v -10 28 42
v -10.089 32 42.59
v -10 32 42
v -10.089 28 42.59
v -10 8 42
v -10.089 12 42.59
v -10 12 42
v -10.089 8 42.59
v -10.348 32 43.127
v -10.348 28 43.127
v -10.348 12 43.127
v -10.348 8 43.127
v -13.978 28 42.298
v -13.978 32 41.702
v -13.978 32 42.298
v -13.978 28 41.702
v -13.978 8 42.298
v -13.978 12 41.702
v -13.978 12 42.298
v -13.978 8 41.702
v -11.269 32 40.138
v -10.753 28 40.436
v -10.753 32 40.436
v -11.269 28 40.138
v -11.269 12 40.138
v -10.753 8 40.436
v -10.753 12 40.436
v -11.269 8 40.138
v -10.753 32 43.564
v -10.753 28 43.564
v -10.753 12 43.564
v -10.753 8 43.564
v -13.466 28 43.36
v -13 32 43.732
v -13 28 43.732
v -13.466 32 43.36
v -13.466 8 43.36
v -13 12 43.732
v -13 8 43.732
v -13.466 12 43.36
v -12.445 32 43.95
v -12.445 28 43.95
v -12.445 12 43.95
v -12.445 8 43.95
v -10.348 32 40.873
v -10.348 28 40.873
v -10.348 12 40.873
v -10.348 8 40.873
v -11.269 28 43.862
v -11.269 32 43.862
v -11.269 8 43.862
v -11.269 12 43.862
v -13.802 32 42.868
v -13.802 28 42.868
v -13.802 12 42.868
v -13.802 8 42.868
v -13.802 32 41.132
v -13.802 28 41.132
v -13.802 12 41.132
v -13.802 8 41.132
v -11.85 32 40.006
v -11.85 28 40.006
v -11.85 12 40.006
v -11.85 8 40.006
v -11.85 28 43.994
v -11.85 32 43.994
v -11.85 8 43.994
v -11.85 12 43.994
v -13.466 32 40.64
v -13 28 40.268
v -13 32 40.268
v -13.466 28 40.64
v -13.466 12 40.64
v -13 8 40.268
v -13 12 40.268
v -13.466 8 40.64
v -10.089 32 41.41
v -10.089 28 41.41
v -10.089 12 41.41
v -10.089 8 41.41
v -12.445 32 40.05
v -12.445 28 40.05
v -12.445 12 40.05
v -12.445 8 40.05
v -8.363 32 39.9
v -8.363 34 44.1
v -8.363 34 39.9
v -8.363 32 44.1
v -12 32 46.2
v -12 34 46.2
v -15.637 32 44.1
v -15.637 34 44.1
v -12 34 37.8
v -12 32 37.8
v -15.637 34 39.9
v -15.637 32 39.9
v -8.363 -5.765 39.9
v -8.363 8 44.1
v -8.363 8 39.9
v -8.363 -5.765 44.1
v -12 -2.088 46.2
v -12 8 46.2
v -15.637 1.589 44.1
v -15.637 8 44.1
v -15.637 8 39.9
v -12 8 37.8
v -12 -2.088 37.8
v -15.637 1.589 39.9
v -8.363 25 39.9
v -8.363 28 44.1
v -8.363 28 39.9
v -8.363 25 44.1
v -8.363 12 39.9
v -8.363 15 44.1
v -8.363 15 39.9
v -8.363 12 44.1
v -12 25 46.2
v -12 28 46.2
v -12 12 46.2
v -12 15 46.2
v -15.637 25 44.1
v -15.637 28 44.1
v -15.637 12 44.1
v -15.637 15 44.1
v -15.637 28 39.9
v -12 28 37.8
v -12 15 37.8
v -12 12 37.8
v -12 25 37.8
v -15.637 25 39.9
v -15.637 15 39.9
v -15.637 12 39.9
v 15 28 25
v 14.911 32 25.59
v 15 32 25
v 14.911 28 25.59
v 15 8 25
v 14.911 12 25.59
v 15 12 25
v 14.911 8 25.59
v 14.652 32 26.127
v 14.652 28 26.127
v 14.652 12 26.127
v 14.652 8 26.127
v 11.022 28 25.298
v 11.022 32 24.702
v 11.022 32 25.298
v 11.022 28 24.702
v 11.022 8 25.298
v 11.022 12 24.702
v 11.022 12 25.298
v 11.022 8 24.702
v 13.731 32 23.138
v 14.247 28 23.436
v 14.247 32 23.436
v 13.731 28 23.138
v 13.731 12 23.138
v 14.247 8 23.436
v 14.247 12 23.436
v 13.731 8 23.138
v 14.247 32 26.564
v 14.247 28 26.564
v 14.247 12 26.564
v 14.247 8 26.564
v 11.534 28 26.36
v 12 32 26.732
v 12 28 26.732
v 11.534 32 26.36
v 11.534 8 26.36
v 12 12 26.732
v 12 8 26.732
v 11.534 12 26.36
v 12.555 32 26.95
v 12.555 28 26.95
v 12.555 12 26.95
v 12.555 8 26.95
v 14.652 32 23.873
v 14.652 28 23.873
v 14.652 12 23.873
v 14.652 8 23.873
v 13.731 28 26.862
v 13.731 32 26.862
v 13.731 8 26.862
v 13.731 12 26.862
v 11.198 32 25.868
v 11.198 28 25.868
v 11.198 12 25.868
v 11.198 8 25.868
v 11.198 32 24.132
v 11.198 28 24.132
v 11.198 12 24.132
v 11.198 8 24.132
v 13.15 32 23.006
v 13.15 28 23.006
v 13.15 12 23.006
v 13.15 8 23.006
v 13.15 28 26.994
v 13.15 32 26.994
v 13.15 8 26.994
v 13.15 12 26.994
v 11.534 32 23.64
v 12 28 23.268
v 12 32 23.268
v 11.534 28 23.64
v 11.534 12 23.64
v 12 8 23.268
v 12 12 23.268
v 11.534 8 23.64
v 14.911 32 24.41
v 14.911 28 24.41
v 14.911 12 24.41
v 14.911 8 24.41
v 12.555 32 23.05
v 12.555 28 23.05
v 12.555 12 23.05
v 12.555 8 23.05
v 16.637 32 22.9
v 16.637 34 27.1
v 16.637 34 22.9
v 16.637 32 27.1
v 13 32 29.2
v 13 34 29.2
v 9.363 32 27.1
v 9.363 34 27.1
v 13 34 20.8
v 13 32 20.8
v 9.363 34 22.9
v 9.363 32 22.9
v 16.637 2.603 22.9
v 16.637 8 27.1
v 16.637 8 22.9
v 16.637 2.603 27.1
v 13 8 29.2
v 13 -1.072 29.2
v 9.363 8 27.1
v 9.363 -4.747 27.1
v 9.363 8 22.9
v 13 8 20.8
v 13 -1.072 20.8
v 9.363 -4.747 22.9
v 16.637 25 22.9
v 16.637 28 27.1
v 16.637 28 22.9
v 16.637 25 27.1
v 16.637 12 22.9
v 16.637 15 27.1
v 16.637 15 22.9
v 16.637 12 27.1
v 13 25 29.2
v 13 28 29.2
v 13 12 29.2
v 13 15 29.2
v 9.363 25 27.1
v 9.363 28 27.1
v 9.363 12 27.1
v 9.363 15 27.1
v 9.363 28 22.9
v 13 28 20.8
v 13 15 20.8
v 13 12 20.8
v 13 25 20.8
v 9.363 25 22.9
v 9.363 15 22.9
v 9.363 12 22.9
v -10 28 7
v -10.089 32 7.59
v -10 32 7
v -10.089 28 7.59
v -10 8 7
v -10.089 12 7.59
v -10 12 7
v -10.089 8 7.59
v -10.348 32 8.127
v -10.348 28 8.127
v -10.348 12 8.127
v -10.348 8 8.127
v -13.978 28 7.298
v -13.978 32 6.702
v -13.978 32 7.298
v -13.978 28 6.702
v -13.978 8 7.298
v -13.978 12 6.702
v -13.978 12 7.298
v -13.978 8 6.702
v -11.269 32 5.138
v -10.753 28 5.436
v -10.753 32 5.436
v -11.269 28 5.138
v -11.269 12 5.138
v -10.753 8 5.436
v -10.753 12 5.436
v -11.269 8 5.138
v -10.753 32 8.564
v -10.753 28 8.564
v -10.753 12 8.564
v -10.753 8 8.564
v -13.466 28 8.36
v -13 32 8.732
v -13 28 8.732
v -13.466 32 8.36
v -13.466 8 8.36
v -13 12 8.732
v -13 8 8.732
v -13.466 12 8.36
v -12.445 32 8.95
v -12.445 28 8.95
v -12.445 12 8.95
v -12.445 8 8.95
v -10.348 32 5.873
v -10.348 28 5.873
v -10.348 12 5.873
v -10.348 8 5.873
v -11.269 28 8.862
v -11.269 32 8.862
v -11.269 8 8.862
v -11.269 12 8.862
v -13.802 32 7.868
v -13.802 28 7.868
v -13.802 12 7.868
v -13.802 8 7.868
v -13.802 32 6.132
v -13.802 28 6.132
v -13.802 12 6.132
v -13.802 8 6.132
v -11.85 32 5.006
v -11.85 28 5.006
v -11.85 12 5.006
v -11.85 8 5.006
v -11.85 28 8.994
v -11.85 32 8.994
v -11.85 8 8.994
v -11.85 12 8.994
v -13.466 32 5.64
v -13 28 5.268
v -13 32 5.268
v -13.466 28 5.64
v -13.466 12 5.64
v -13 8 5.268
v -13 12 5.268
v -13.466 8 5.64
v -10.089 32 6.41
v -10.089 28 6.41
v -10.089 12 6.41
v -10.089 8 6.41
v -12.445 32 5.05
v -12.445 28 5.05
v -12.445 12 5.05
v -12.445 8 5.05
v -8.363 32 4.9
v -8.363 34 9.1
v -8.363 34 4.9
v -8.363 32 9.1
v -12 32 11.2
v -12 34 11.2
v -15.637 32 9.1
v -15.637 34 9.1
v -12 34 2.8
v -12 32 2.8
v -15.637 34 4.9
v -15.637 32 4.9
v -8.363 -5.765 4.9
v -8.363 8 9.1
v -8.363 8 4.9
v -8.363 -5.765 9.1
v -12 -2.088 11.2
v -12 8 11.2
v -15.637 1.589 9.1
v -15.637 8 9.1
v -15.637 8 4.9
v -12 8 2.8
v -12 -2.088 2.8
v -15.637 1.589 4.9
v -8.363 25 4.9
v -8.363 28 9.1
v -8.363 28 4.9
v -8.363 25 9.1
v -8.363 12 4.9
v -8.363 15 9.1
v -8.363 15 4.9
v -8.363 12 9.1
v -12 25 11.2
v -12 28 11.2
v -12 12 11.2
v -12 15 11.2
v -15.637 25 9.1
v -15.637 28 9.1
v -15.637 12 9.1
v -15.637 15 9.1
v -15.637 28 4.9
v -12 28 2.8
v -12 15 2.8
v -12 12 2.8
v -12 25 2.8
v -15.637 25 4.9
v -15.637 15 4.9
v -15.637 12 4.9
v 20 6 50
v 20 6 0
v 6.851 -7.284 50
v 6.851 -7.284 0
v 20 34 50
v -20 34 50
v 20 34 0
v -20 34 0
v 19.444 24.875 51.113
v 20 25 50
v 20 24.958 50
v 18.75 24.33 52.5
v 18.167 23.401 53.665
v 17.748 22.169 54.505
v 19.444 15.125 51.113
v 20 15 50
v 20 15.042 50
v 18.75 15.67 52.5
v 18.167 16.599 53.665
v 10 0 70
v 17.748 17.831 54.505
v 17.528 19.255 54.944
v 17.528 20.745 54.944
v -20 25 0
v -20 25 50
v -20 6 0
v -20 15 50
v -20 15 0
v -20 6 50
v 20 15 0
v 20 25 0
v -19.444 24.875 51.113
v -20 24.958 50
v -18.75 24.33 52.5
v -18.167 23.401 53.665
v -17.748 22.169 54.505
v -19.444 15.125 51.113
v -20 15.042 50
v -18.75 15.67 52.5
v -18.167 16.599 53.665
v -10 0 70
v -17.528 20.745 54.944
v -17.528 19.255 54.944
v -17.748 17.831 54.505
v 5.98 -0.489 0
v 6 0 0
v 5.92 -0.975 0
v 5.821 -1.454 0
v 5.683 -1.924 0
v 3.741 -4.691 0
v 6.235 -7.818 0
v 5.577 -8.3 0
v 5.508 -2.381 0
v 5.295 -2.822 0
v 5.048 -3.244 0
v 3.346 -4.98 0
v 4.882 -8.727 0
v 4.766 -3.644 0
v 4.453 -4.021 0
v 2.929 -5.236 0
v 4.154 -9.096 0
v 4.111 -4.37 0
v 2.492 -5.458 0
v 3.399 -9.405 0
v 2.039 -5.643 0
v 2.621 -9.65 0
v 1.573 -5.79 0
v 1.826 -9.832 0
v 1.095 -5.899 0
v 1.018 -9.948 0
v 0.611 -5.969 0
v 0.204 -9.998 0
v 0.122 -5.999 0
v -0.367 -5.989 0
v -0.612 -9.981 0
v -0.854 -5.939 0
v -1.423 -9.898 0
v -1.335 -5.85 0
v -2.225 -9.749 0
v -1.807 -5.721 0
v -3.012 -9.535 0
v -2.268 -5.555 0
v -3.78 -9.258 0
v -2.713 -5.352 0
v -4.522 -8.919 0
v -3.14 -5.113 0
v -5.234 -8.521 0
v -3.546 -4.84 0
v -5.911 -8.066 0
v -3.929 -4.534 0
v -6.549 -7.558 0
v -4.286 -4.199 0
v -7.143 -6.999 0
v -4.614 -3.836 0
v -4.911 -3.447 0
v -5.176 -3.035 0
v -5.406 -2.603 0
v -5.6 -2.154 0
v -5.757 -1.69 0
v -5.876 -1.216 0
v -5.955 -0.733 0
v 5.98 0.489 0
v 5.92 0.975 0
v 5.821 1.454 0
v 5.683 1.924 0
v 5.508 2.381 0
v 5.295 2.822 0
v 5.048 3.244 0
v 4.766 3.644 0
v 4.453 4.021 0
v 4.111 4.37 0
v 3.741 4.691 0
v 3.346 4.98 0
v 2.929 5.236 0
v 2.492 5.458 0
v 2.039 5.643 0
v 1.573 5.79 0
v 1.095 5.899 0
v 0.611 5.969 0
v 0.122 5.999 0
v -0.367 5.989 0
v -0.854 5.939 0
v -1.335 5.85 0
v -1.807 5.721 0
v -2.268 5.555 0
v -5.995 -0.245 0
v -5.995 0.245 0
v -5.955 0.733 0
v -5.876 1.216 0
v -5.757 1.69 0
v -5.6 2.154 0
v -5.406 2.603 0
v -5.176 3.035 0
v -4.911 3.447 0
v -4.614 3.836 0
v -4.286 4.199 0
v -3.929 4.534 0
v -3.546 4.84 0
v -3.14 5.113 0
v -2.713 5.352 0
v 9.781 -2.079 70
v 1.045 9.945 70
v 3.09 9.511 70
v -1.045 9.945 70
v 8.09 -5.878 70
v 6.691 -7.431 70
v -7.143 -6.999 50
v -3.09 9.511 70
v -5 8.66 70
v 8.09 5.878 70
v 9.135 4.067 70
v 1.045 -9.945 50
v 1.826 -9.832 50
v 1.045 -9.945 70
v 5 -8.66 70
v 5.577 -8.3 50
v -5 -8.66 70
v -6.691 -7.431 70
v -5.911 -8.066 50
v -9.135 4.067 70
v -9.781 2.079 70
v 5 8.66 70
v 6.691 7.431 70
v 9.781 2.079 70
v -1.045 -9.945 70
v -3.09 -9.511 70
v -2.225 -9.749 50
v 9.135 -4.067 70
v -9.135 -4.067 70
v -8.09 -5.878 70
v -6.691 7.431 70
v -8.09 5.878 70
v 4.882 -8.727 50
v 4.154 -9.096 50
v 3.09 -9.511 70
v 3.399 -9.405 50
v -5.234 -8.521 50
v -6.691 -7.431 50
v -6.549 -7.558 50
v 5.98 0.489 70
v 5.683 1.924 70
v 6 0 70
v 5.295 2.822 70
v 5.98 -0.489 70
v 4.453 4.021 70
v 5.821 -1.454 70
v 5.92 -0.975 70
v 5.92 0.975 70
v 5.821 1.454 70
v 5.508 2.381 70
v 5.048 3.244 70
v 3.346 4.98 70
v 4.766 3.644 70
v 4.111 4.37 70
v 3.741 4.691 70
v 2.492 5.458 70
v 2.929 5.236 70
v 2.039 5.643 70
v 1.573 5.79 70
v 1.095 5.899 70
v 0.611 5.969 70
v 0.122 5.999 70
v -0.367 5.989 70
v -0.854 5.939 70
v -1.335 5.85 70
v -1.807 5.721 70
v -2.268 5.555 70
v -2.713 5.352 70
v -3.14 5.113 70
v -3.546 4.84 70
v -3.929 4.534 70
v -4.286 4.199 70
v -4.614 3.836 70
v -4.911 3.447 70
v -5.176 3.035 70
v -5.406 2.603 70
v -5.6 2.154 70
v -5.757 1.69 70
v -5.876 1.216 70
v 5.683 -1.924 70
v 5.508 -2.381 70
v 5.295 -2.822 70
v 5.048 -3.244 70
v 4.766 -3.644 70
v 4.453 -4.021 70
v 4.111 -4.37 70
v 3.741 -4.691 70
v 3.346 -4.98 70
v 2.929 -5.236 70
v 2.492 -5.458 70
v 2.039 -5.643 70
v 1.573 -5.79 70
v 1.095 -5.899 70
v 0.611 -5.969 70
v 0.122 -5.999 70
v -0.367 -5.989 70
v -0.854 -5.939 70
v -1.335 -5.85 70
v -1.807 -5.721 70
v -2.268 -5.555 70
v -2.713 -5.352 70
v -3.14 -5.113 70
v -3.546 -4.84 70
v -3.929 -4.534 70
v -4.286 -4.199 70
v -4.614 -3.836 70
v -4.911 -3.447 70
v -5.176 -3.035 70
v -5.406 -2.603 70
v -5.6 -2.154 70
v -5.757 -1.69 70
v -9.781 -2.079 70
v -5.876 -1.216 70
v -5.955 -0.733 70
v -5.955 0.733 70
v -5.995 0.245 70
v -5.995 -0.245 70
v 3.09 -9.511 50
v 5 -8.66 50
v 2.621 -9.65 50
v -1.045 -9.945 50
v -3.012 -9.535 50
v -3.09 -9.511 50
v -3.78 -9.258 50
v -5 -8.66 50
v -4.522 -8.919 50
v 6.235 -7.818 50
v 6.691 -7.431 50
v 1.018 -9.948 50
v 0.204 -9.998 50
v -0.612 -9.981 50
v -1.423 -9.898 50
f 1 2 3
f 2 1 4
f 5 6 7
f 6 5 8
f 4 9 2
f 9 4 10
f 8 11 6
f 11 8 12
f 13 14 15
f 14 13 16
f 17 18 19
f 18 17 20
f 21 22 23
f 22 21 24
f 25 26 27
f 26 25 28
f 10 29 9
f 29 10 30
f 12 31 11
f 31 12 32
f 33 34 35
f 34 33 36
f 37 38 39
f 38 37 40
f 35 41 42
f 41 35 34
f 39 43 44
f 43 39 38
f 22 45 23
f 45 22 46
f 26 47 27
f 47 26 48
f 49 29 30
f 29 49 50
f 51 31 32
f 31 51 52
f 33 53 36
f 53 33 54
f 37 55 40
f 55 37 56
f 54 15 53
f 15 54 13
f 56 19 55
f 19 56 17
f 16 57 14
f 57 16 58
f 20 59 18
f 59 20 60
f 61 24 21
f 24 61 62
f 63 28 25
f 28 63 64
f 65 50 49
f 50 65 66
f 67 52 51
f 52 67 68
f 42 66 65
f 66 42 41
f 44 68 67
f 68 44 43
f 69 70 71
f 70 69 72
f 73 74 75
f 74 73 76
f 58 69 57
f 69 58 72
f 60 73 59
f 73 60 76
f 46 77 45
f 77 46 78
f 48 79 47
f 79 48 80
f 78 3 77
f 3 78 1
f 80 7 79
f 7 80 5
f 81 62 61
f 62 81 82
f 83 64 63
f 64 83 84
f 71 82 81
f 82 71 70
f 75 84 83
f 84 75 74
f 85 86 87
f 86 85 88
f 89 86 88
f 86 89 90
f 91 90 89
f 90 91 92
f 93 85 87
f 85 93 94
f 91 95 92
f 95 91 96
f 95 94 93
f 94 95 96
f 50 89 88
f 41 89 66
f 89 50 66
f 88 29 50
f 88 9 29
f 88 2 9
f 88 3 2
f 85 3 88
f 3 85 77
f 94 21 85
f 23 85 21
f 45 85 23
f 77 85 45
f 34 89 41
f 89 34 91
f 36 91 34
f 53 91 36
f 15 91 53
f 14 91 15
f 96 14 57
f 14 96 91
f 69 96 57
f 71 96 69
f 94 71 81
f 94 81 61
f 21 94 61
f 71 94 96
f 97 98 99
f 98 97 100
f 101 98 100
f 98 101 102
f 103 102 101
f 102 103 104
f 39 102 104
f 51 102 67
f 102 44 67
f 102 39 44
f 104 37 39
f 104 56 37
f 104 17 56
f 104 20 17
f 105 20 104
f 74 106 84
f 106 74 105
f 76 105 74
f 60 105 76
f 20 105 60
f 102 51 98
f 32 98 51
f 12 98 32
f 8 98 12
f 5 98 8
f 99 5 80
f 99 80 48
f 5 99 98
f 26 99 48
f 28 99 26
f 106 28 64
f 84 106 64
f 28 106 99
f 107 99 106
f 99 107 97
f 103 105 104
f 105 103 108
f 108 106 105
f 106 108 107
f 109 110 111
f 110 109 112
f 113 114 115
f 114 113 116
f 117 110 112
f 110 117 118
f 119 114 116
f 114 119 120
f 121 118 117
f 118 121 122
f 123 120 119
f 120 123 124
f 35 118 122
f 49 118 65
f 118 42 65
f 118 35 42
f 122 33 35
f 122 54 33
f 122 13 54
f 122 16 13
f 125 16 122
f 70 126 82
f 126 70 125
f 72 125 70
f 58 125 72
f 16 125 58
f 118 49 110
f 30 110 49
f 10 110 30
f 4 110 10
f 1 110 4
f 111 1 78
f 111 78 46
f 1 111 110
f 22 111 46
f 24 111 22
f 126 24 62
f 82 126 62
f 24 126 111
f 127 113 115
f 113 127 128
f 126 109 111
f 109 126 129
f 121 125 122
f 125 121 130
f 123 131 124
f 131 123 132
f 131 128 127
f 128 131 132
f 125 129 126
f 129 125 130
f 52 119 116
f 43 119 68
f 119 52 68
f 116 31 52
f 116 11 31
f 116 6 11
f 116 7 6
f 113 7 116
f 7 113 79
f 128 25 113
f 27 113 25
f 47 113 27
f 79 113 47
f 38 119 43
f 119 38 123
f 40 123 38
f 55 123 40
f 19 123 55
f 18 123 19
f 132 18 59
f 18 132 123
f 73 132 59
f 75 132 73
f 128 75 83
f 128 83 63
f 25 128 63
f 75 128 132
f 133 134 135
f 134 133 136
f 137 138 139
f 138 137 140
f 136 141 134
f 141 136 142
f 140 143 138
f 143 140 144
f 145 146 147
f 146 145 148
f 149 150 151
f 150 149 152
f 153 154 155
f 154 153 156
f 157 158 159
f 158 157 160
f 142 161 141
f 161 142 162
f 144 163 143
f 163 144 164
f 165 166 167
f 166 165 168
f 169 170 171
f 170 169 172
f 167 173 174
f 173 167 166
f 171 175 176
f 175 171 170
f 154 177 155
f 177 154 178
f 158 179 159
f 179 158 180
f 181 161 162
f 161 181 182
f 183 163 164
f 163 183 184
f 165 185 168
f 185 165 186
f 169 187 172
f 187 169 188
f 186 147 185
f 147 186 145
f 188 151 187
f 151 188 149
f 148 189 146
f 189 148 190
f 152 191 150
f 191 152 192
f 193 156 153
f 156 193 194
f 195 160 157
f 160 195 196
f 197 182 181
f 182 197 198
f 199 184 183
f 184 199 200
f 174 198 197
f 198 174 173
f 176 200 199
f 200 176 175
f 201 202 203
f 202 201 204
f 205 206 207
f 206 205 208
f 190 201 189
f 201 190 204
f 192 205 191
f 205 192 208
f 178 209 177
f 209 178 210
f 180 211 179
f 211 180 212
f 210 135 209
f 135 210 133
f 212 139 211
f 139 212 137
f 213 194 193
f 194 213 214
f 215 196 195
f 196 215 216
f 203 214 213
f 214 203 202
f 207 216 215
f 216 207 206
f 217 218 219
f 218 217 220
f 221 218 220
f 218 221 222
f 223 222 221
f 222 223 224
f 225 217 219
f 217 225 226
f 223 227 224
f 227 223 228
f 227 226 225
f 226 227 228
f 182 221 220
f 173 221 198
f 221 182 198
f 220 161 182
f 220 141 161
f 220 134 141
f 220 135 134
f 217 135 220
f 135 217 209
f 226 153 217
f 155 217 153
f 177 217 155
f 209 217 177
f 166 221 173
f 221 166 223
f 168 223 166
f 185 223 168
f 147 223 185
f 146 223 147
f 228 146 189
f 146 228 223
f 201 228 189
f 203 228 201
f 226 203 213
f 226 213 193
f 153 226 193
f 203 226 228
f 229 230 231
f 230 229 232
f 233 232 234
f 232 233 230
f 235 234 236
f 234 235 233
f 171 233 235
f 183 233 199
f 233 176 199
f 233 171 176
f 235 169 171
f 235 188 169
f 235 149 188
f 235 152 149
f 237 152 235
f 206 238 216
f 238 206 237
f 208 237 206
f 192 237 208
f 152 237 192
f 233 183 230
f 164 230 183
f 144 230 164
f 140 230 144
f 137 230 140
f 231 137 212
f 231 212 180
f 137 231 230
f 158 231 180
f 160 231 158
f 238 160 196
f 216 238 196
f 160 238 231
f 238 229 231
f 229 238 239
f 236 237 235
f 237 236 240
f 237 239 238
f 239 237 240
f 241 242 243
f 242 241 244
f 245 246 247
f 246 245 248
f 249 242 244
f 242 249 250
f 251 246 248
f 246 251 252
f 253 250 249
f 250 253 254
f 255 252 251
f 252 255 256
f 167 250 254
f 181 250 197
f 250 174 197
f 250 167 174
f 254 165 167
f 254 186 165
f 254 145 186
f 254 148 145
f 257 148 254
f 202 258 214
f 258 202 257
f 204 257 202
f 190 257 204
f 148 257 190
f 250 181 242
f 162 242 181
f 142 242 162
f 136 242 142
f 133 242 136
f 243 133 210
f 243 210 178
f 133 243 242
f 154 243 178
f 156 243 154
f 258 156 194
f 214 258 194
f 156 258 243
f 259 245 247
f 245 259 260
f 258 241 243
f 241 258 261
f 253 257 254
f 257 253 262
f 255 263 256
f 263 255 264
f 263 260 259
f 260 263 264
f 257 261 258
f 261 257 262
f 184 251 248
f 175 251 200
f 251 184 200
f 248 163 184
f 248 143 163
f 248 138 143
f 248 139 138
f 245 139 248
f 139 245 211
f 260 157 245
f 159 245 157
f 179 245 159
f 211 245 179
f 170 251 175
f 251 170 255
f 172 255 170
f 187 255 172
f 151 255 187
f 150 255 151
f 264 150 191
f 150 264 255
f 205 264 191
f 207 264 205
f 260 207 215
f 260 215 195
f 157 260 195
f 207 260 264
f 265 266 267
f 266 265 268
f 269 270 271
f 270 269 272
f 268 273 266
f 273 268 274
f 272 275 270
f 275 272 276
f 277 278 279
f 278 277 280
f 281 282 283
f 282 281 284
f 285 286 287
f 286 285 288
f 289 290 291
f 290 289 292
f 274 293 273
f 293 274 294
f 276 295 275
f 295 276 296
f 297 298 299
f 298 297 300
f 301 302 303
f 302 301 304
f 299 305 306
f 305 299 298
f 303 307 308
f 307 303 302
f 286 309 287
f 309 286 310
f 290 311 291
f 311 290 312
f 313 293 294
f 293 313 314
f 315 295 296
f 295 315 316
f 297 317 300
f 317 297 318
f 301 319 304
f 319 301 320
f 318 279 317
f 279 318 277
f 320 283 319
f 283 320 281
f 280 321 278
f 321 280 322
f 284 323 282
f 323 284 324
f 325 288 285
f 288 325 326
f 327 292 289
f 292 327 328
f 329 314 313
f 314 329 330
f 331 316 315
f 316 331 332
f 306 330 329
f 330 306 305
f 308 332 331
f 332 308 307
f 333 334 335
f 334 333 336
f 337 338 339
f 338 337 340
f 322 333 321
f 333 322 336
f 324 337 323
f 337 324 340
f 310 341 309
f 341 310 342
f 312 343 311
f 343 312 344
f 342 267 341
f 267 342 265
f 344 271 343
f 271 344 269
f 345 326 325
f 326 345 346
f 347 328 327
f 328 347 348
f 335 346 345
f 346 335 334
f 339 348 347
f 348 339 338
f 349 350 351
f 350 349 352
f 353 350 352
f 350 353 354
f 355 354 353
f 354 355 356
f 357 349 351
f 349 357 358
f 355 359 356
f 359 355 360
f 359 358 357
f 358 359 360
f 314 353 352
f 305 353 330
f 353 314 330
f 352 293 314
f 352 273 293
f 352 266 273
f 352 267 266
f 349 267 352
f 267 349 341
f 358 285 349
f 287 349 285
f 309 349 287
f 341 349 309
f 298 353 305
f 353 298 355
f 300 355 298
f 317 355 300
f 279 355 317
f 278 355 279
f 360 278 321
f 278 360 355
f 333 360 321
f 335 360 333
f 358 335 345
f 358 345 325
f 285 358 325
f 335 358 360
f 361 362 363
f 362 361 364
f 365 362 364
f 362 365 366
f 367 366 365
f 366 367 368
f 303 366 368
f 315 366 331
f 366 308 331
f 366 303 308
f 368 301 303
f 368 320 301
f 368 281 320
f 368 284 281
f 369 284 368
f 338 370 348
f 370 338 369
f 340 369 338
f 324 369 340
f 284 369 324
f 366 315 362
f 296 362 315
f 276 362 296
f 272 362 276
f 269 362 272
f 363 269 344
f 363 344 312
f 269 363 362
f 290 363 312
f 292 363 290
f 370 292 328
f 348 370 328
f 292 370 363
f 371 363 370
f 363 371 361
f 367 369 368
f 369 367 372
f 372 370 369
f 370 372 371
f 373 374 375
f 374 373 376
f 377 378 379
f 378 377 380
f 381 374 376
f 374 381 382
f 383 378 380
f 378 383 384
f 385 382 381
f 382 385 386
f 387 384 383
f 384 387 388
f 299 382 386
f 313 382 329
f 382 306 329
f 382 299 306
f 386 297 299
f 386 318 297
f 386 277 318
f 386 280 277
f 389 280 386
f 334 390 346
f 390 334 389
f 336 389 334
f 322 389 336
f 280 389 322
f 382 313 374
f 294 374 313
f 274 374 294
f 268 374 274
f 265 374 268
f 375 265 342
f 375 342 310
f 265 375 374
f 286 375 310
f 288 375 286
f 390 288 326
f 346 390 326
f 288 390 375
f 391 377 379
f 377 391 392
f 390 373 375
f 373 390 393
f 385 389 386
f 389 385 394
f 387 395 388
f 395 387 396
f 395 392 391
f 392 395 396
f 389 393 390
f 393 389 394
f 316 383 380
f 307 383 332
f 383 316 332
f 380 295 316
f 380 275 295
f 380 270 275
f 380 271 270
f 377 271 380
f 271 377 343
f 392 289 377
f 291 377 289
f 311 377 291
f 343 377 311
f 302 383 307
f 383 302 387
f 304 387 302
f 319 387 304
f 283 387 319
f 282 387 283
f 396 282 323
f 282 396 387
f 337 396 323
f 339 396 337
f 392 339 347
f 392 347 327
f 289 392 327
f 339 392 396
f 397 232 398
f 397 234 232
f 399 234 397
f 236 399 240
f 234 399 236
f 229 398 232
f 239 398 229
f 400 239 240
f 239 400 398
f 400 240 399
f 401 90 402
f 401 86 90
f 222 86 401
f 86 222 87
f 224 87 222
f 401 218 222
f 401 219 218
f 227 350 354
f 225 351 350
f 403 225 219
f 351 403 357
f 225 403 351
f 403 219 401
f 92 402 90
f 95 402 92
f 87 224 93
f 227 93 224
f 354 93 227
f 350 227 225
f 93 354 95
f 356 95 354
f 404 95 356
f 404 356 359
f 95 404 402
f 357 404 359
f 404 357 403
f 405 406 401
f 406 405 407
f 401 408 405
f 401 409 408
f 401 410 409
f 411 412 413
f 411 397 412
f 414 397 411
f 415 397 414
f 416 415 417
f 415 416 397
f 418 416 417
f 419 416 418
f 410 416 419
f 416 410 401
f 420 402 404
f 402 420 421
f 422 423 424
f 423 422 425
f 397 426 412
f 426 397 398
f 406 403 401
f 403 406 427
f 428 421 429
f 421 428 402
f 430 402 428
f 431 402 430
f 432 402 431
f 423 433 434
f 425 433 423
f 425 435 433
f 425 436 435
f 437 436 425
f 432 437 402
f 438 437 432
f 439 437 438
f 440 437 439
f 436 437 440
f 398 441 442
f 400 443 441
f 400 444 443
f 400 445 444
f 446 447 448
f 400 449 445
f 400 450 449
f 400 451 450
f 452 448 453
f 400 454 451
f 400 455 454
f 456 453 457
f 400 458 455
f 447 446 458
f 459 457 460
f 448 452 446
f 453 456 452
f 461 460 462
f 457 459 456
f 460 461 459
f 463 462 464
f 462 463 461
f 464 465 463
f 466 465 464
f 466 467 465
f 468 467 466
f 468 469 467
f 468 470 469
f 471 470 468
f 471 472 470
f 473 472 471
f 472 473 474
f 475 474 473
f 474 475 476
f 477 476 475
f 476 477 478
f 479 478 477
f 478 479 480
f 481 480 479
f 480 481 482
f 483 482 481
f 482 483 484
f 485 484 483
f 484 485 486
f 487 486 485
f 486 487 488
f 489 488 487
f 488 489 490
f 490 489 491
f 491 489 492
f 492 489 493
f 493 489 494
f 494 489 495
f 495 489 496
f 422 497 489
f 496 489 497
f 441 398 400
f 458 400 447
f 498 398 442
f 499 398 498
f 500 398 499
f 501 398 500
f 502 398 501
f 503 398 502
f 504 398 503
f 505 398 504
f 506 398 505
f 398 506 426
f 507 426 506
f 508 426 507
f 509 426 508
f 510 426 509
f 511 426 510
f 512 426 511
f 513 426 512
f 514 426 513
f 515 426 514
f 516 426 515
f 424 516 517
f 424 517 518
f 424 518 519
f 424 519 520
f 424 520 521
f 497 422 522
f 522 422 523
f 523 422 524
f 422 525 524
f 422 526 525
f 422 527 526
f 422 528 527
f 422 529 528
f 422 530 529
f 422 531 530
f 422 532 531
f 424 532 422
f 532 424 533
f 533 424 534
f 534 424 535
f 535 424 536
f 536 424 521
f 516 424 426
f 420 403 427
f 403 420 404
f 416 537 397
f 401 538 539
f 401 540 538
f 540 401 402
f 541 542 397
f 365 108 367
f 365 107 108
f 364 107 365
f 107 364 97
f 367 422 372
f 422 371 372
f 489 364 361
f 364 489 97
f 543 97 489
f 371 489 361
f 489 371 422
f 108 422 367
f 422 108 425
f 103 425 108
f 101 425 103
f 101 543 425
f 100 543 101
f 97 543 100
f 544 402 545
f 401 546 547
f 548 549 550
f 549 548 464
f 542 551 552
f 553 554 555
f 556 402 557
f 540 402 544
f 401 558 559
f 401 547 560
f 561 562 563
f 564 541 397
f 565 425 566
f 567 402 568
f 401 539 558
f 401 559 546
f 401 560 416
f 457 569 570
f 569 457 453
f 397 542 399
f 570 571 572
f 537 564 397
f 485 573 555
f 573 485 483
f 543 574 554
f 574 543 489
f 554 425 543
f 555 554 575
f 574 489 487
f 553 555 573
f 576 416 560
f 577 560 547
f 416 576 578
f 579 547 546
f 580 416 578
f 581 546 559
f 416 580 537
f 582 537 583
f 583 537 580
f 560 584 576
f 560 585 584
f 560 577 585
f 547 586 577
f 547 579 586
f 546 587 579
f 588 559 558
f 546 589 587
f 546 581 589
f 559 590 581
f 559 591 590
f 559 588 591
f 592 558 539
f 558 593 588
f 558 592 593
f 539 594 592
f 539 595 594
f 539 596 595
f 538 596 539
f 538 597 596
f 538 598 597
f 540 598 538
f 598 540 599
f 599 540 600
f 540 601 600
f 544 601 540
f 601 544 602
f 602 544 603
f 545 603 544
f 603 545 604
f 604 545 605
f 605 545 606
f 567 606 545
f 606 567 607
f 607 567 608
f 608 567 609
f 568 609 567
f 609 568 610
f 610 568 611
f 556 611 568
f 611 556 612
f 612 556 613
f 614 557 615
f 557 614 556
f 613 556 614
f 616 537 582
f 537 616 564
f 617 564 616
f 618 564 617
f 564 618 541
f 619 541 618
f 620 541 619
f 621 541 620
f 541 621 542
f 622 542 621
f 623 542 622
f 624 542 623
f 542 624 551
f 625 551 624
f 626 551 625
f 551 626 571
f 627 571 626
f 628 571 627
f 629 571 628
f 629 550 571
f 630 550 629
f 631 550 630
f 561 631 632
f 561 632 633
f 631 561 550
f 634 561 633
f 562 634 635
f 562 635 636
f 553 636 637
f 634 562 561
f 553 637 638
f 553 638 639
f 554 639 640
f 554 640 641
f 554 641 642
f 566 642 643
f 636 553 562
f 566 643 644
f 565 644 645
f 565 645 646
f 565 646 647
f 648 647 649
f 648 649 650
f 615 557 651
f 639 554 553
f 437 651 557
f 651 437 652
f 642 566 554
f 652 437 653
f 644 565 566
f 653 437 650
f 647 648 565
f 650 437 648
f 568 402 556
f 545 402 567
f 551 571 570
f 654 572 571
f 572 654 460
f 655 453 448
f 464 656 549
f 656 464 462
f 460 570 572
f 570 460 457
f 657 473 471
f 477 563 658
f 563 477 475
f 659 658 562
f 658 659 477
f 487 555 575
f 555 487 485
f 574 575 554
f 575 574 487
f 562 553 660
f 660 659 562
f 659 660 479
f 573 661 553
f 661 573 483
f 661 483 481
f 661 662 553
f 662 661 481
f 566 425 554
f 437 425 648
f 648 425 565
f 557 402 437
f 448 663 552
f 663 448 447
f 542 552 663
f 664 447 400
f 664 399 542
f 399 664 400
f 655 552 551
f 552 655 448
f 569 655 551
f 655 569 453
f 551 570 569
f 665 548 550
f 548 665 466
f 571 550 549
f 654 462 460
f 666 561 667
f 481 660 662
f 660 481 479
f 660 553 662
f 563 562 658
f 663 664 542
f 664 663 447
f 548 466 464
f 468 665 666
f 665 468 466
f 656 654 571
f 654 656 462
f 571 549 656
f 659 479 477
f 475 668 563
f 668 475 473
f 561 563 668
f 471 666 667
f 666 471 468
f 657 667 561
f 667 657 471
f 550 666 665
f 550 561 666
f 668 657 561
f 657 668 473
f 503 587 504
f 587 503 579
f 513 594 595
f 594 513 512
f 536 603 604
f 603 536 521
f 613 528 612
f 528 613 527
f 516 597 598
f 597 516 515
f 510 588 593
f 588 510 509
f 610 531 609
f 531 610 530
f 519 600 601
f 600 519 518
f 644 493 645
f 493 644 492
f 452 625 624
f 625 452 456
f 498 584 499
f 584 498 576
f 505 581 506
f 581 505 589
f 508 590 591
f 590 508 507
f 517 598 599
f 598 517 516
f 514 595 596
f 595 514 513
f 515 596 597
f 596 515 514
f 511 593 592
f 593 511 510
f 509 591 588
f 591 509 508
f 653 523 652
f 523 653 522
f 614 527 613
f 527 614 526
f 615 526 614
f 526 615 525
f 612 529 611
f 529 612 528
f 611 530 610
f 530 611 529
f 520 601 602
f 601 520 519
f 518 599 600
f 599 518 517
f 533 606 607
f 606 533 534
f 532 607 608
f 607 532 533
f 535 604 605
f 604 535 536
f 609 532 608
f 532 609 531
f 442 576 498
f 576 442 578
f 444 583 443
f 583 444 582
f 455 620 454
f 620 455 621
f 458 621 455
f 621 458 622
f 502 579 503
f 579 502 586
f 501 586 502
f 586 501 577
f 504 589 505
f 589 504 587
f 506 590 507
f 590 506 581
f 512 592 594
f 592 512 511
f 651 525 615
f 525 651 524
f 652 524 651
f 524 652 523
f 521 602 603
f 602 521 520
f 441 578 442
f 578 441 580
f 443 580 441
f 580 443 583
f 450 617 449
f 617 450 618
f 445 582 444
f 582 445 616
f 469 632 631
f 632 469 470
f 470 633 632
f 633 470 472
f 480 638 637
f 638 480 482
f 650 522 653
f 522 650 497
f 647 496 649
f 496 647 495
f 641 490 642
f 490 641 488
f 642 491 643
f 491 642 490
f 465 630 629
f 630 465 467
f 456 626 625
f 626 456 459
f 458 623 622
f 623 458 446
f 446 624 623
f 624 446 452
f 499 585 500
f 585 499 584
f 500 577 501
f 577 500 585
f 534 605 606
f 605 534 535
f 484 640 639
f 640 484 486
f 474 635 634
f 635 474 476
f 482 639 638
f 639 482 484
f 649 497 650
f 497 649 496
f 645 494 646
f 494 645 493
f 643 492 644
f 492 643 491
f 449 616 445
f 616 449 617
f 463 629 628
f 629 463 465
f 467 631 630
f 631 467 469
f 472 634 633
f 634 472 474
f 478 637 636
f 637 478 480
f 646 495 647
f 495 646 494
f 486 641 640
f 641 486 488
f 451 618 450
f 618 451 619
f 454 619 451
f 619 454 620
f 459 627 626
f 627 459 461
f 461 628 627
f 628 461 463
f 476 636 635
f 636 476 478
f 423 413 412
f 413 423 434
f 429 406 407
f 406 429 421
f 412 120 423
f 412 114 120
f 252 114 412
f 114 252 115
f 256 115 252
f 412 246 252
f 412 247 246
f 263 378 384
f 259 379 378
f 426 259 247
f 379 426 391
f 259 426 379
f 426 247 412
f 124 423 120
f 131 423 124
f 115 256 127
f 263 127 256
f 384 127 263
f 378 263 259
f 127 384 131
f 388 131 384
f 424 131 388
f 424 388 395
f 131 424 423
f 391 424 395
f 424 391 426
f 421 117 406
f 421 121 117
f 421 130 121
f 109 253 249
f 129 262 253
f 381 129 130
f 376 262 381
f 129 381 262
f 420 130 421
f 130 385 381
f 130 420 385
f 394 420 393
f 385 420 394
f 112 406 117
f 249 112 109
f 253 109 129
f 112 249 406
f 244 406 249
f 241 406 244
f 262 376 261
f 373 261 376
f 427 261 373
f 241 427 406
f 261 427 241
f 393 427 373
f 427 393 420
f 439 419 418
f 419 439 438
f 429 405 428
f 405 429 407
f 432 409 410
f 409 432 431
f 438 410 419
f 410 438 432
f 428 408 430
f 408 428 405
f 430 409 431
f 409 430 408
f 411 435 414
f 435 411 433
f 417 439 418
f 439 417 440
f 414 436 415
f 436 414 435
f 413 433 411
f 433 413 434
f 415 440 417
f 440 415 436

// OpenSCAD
w=0.4*10;
rod_d=12;
rod_h=50;
holder_h=rod_h;
holder_w=28;

difference()
{
    hull()
    {
        translate([-20,rod_d/2,0])
        lamp_holder();
        rod_holder();
        translate([0,0,holder_h])
        cylinder(d=20,h=20);
    }
    rod();
//    translate([-20,50+11+rod_d/2,20])
    translate([-12,50+11+rod_d/2,7+0])
    #the_holes(gap=20, h=100);
    
    #translate([-20,holder_w/4+8,0])
    cube([40,22-12,holder_h]);
    
    #translate([-20,holder_w/4+8+5,holder_h])
    rotate([0,90,0])
    cylinder(d=10,h=40,$fn=21);
   
}

module the_holes(gap,h=100)
{
    translate([0,0,35])
    the_hole(gap, h);
    translate([25,0,18])
    the_hole(gap, h);
    translate([0,0,0])
    the_hole(gap, h);
}

module the_hole(gap, h=100)
{
    rotate([90,0,0])
    cylinder(d=4,h=h,$fn=21);
    
    translate([0,5,0])
    rotate([90,30,0])
    cylinder(d=8.4,h=(h-gap)/2,$fn=6);
    
    translate([0,(gap-h)/2-gap+1,0])
    rotate([90,30,0])
    cylinder(d=8.4,h=(h-gap)/2,$fn=6);

    translate([0,-h/2+4.5+6.5,0])
    rotate([90,30,0])
    cylinder(d=8.4,h=gap/2+6,$fn=6);
}

module lamp_holder()
{
		cube([40,holder_w,holder_h]);
//		translate([0,6,0])
//		cube([40,holder_w-12,holder_h]);
//		translate([7,holder_w+6,5])
//		rotate([90,30,0])
//		cylinder(d=3,h=34,$fn=21);
}

module rod_holder()
{
    $fn=77;
    cylinder(d=rod_d+2*w,h=rod_h);
}

module rod()
{
    $fn=77;
    translate([0,0,-rod_h*1])
    cylinder(d=rod_d, h= rod_h*3);
}
